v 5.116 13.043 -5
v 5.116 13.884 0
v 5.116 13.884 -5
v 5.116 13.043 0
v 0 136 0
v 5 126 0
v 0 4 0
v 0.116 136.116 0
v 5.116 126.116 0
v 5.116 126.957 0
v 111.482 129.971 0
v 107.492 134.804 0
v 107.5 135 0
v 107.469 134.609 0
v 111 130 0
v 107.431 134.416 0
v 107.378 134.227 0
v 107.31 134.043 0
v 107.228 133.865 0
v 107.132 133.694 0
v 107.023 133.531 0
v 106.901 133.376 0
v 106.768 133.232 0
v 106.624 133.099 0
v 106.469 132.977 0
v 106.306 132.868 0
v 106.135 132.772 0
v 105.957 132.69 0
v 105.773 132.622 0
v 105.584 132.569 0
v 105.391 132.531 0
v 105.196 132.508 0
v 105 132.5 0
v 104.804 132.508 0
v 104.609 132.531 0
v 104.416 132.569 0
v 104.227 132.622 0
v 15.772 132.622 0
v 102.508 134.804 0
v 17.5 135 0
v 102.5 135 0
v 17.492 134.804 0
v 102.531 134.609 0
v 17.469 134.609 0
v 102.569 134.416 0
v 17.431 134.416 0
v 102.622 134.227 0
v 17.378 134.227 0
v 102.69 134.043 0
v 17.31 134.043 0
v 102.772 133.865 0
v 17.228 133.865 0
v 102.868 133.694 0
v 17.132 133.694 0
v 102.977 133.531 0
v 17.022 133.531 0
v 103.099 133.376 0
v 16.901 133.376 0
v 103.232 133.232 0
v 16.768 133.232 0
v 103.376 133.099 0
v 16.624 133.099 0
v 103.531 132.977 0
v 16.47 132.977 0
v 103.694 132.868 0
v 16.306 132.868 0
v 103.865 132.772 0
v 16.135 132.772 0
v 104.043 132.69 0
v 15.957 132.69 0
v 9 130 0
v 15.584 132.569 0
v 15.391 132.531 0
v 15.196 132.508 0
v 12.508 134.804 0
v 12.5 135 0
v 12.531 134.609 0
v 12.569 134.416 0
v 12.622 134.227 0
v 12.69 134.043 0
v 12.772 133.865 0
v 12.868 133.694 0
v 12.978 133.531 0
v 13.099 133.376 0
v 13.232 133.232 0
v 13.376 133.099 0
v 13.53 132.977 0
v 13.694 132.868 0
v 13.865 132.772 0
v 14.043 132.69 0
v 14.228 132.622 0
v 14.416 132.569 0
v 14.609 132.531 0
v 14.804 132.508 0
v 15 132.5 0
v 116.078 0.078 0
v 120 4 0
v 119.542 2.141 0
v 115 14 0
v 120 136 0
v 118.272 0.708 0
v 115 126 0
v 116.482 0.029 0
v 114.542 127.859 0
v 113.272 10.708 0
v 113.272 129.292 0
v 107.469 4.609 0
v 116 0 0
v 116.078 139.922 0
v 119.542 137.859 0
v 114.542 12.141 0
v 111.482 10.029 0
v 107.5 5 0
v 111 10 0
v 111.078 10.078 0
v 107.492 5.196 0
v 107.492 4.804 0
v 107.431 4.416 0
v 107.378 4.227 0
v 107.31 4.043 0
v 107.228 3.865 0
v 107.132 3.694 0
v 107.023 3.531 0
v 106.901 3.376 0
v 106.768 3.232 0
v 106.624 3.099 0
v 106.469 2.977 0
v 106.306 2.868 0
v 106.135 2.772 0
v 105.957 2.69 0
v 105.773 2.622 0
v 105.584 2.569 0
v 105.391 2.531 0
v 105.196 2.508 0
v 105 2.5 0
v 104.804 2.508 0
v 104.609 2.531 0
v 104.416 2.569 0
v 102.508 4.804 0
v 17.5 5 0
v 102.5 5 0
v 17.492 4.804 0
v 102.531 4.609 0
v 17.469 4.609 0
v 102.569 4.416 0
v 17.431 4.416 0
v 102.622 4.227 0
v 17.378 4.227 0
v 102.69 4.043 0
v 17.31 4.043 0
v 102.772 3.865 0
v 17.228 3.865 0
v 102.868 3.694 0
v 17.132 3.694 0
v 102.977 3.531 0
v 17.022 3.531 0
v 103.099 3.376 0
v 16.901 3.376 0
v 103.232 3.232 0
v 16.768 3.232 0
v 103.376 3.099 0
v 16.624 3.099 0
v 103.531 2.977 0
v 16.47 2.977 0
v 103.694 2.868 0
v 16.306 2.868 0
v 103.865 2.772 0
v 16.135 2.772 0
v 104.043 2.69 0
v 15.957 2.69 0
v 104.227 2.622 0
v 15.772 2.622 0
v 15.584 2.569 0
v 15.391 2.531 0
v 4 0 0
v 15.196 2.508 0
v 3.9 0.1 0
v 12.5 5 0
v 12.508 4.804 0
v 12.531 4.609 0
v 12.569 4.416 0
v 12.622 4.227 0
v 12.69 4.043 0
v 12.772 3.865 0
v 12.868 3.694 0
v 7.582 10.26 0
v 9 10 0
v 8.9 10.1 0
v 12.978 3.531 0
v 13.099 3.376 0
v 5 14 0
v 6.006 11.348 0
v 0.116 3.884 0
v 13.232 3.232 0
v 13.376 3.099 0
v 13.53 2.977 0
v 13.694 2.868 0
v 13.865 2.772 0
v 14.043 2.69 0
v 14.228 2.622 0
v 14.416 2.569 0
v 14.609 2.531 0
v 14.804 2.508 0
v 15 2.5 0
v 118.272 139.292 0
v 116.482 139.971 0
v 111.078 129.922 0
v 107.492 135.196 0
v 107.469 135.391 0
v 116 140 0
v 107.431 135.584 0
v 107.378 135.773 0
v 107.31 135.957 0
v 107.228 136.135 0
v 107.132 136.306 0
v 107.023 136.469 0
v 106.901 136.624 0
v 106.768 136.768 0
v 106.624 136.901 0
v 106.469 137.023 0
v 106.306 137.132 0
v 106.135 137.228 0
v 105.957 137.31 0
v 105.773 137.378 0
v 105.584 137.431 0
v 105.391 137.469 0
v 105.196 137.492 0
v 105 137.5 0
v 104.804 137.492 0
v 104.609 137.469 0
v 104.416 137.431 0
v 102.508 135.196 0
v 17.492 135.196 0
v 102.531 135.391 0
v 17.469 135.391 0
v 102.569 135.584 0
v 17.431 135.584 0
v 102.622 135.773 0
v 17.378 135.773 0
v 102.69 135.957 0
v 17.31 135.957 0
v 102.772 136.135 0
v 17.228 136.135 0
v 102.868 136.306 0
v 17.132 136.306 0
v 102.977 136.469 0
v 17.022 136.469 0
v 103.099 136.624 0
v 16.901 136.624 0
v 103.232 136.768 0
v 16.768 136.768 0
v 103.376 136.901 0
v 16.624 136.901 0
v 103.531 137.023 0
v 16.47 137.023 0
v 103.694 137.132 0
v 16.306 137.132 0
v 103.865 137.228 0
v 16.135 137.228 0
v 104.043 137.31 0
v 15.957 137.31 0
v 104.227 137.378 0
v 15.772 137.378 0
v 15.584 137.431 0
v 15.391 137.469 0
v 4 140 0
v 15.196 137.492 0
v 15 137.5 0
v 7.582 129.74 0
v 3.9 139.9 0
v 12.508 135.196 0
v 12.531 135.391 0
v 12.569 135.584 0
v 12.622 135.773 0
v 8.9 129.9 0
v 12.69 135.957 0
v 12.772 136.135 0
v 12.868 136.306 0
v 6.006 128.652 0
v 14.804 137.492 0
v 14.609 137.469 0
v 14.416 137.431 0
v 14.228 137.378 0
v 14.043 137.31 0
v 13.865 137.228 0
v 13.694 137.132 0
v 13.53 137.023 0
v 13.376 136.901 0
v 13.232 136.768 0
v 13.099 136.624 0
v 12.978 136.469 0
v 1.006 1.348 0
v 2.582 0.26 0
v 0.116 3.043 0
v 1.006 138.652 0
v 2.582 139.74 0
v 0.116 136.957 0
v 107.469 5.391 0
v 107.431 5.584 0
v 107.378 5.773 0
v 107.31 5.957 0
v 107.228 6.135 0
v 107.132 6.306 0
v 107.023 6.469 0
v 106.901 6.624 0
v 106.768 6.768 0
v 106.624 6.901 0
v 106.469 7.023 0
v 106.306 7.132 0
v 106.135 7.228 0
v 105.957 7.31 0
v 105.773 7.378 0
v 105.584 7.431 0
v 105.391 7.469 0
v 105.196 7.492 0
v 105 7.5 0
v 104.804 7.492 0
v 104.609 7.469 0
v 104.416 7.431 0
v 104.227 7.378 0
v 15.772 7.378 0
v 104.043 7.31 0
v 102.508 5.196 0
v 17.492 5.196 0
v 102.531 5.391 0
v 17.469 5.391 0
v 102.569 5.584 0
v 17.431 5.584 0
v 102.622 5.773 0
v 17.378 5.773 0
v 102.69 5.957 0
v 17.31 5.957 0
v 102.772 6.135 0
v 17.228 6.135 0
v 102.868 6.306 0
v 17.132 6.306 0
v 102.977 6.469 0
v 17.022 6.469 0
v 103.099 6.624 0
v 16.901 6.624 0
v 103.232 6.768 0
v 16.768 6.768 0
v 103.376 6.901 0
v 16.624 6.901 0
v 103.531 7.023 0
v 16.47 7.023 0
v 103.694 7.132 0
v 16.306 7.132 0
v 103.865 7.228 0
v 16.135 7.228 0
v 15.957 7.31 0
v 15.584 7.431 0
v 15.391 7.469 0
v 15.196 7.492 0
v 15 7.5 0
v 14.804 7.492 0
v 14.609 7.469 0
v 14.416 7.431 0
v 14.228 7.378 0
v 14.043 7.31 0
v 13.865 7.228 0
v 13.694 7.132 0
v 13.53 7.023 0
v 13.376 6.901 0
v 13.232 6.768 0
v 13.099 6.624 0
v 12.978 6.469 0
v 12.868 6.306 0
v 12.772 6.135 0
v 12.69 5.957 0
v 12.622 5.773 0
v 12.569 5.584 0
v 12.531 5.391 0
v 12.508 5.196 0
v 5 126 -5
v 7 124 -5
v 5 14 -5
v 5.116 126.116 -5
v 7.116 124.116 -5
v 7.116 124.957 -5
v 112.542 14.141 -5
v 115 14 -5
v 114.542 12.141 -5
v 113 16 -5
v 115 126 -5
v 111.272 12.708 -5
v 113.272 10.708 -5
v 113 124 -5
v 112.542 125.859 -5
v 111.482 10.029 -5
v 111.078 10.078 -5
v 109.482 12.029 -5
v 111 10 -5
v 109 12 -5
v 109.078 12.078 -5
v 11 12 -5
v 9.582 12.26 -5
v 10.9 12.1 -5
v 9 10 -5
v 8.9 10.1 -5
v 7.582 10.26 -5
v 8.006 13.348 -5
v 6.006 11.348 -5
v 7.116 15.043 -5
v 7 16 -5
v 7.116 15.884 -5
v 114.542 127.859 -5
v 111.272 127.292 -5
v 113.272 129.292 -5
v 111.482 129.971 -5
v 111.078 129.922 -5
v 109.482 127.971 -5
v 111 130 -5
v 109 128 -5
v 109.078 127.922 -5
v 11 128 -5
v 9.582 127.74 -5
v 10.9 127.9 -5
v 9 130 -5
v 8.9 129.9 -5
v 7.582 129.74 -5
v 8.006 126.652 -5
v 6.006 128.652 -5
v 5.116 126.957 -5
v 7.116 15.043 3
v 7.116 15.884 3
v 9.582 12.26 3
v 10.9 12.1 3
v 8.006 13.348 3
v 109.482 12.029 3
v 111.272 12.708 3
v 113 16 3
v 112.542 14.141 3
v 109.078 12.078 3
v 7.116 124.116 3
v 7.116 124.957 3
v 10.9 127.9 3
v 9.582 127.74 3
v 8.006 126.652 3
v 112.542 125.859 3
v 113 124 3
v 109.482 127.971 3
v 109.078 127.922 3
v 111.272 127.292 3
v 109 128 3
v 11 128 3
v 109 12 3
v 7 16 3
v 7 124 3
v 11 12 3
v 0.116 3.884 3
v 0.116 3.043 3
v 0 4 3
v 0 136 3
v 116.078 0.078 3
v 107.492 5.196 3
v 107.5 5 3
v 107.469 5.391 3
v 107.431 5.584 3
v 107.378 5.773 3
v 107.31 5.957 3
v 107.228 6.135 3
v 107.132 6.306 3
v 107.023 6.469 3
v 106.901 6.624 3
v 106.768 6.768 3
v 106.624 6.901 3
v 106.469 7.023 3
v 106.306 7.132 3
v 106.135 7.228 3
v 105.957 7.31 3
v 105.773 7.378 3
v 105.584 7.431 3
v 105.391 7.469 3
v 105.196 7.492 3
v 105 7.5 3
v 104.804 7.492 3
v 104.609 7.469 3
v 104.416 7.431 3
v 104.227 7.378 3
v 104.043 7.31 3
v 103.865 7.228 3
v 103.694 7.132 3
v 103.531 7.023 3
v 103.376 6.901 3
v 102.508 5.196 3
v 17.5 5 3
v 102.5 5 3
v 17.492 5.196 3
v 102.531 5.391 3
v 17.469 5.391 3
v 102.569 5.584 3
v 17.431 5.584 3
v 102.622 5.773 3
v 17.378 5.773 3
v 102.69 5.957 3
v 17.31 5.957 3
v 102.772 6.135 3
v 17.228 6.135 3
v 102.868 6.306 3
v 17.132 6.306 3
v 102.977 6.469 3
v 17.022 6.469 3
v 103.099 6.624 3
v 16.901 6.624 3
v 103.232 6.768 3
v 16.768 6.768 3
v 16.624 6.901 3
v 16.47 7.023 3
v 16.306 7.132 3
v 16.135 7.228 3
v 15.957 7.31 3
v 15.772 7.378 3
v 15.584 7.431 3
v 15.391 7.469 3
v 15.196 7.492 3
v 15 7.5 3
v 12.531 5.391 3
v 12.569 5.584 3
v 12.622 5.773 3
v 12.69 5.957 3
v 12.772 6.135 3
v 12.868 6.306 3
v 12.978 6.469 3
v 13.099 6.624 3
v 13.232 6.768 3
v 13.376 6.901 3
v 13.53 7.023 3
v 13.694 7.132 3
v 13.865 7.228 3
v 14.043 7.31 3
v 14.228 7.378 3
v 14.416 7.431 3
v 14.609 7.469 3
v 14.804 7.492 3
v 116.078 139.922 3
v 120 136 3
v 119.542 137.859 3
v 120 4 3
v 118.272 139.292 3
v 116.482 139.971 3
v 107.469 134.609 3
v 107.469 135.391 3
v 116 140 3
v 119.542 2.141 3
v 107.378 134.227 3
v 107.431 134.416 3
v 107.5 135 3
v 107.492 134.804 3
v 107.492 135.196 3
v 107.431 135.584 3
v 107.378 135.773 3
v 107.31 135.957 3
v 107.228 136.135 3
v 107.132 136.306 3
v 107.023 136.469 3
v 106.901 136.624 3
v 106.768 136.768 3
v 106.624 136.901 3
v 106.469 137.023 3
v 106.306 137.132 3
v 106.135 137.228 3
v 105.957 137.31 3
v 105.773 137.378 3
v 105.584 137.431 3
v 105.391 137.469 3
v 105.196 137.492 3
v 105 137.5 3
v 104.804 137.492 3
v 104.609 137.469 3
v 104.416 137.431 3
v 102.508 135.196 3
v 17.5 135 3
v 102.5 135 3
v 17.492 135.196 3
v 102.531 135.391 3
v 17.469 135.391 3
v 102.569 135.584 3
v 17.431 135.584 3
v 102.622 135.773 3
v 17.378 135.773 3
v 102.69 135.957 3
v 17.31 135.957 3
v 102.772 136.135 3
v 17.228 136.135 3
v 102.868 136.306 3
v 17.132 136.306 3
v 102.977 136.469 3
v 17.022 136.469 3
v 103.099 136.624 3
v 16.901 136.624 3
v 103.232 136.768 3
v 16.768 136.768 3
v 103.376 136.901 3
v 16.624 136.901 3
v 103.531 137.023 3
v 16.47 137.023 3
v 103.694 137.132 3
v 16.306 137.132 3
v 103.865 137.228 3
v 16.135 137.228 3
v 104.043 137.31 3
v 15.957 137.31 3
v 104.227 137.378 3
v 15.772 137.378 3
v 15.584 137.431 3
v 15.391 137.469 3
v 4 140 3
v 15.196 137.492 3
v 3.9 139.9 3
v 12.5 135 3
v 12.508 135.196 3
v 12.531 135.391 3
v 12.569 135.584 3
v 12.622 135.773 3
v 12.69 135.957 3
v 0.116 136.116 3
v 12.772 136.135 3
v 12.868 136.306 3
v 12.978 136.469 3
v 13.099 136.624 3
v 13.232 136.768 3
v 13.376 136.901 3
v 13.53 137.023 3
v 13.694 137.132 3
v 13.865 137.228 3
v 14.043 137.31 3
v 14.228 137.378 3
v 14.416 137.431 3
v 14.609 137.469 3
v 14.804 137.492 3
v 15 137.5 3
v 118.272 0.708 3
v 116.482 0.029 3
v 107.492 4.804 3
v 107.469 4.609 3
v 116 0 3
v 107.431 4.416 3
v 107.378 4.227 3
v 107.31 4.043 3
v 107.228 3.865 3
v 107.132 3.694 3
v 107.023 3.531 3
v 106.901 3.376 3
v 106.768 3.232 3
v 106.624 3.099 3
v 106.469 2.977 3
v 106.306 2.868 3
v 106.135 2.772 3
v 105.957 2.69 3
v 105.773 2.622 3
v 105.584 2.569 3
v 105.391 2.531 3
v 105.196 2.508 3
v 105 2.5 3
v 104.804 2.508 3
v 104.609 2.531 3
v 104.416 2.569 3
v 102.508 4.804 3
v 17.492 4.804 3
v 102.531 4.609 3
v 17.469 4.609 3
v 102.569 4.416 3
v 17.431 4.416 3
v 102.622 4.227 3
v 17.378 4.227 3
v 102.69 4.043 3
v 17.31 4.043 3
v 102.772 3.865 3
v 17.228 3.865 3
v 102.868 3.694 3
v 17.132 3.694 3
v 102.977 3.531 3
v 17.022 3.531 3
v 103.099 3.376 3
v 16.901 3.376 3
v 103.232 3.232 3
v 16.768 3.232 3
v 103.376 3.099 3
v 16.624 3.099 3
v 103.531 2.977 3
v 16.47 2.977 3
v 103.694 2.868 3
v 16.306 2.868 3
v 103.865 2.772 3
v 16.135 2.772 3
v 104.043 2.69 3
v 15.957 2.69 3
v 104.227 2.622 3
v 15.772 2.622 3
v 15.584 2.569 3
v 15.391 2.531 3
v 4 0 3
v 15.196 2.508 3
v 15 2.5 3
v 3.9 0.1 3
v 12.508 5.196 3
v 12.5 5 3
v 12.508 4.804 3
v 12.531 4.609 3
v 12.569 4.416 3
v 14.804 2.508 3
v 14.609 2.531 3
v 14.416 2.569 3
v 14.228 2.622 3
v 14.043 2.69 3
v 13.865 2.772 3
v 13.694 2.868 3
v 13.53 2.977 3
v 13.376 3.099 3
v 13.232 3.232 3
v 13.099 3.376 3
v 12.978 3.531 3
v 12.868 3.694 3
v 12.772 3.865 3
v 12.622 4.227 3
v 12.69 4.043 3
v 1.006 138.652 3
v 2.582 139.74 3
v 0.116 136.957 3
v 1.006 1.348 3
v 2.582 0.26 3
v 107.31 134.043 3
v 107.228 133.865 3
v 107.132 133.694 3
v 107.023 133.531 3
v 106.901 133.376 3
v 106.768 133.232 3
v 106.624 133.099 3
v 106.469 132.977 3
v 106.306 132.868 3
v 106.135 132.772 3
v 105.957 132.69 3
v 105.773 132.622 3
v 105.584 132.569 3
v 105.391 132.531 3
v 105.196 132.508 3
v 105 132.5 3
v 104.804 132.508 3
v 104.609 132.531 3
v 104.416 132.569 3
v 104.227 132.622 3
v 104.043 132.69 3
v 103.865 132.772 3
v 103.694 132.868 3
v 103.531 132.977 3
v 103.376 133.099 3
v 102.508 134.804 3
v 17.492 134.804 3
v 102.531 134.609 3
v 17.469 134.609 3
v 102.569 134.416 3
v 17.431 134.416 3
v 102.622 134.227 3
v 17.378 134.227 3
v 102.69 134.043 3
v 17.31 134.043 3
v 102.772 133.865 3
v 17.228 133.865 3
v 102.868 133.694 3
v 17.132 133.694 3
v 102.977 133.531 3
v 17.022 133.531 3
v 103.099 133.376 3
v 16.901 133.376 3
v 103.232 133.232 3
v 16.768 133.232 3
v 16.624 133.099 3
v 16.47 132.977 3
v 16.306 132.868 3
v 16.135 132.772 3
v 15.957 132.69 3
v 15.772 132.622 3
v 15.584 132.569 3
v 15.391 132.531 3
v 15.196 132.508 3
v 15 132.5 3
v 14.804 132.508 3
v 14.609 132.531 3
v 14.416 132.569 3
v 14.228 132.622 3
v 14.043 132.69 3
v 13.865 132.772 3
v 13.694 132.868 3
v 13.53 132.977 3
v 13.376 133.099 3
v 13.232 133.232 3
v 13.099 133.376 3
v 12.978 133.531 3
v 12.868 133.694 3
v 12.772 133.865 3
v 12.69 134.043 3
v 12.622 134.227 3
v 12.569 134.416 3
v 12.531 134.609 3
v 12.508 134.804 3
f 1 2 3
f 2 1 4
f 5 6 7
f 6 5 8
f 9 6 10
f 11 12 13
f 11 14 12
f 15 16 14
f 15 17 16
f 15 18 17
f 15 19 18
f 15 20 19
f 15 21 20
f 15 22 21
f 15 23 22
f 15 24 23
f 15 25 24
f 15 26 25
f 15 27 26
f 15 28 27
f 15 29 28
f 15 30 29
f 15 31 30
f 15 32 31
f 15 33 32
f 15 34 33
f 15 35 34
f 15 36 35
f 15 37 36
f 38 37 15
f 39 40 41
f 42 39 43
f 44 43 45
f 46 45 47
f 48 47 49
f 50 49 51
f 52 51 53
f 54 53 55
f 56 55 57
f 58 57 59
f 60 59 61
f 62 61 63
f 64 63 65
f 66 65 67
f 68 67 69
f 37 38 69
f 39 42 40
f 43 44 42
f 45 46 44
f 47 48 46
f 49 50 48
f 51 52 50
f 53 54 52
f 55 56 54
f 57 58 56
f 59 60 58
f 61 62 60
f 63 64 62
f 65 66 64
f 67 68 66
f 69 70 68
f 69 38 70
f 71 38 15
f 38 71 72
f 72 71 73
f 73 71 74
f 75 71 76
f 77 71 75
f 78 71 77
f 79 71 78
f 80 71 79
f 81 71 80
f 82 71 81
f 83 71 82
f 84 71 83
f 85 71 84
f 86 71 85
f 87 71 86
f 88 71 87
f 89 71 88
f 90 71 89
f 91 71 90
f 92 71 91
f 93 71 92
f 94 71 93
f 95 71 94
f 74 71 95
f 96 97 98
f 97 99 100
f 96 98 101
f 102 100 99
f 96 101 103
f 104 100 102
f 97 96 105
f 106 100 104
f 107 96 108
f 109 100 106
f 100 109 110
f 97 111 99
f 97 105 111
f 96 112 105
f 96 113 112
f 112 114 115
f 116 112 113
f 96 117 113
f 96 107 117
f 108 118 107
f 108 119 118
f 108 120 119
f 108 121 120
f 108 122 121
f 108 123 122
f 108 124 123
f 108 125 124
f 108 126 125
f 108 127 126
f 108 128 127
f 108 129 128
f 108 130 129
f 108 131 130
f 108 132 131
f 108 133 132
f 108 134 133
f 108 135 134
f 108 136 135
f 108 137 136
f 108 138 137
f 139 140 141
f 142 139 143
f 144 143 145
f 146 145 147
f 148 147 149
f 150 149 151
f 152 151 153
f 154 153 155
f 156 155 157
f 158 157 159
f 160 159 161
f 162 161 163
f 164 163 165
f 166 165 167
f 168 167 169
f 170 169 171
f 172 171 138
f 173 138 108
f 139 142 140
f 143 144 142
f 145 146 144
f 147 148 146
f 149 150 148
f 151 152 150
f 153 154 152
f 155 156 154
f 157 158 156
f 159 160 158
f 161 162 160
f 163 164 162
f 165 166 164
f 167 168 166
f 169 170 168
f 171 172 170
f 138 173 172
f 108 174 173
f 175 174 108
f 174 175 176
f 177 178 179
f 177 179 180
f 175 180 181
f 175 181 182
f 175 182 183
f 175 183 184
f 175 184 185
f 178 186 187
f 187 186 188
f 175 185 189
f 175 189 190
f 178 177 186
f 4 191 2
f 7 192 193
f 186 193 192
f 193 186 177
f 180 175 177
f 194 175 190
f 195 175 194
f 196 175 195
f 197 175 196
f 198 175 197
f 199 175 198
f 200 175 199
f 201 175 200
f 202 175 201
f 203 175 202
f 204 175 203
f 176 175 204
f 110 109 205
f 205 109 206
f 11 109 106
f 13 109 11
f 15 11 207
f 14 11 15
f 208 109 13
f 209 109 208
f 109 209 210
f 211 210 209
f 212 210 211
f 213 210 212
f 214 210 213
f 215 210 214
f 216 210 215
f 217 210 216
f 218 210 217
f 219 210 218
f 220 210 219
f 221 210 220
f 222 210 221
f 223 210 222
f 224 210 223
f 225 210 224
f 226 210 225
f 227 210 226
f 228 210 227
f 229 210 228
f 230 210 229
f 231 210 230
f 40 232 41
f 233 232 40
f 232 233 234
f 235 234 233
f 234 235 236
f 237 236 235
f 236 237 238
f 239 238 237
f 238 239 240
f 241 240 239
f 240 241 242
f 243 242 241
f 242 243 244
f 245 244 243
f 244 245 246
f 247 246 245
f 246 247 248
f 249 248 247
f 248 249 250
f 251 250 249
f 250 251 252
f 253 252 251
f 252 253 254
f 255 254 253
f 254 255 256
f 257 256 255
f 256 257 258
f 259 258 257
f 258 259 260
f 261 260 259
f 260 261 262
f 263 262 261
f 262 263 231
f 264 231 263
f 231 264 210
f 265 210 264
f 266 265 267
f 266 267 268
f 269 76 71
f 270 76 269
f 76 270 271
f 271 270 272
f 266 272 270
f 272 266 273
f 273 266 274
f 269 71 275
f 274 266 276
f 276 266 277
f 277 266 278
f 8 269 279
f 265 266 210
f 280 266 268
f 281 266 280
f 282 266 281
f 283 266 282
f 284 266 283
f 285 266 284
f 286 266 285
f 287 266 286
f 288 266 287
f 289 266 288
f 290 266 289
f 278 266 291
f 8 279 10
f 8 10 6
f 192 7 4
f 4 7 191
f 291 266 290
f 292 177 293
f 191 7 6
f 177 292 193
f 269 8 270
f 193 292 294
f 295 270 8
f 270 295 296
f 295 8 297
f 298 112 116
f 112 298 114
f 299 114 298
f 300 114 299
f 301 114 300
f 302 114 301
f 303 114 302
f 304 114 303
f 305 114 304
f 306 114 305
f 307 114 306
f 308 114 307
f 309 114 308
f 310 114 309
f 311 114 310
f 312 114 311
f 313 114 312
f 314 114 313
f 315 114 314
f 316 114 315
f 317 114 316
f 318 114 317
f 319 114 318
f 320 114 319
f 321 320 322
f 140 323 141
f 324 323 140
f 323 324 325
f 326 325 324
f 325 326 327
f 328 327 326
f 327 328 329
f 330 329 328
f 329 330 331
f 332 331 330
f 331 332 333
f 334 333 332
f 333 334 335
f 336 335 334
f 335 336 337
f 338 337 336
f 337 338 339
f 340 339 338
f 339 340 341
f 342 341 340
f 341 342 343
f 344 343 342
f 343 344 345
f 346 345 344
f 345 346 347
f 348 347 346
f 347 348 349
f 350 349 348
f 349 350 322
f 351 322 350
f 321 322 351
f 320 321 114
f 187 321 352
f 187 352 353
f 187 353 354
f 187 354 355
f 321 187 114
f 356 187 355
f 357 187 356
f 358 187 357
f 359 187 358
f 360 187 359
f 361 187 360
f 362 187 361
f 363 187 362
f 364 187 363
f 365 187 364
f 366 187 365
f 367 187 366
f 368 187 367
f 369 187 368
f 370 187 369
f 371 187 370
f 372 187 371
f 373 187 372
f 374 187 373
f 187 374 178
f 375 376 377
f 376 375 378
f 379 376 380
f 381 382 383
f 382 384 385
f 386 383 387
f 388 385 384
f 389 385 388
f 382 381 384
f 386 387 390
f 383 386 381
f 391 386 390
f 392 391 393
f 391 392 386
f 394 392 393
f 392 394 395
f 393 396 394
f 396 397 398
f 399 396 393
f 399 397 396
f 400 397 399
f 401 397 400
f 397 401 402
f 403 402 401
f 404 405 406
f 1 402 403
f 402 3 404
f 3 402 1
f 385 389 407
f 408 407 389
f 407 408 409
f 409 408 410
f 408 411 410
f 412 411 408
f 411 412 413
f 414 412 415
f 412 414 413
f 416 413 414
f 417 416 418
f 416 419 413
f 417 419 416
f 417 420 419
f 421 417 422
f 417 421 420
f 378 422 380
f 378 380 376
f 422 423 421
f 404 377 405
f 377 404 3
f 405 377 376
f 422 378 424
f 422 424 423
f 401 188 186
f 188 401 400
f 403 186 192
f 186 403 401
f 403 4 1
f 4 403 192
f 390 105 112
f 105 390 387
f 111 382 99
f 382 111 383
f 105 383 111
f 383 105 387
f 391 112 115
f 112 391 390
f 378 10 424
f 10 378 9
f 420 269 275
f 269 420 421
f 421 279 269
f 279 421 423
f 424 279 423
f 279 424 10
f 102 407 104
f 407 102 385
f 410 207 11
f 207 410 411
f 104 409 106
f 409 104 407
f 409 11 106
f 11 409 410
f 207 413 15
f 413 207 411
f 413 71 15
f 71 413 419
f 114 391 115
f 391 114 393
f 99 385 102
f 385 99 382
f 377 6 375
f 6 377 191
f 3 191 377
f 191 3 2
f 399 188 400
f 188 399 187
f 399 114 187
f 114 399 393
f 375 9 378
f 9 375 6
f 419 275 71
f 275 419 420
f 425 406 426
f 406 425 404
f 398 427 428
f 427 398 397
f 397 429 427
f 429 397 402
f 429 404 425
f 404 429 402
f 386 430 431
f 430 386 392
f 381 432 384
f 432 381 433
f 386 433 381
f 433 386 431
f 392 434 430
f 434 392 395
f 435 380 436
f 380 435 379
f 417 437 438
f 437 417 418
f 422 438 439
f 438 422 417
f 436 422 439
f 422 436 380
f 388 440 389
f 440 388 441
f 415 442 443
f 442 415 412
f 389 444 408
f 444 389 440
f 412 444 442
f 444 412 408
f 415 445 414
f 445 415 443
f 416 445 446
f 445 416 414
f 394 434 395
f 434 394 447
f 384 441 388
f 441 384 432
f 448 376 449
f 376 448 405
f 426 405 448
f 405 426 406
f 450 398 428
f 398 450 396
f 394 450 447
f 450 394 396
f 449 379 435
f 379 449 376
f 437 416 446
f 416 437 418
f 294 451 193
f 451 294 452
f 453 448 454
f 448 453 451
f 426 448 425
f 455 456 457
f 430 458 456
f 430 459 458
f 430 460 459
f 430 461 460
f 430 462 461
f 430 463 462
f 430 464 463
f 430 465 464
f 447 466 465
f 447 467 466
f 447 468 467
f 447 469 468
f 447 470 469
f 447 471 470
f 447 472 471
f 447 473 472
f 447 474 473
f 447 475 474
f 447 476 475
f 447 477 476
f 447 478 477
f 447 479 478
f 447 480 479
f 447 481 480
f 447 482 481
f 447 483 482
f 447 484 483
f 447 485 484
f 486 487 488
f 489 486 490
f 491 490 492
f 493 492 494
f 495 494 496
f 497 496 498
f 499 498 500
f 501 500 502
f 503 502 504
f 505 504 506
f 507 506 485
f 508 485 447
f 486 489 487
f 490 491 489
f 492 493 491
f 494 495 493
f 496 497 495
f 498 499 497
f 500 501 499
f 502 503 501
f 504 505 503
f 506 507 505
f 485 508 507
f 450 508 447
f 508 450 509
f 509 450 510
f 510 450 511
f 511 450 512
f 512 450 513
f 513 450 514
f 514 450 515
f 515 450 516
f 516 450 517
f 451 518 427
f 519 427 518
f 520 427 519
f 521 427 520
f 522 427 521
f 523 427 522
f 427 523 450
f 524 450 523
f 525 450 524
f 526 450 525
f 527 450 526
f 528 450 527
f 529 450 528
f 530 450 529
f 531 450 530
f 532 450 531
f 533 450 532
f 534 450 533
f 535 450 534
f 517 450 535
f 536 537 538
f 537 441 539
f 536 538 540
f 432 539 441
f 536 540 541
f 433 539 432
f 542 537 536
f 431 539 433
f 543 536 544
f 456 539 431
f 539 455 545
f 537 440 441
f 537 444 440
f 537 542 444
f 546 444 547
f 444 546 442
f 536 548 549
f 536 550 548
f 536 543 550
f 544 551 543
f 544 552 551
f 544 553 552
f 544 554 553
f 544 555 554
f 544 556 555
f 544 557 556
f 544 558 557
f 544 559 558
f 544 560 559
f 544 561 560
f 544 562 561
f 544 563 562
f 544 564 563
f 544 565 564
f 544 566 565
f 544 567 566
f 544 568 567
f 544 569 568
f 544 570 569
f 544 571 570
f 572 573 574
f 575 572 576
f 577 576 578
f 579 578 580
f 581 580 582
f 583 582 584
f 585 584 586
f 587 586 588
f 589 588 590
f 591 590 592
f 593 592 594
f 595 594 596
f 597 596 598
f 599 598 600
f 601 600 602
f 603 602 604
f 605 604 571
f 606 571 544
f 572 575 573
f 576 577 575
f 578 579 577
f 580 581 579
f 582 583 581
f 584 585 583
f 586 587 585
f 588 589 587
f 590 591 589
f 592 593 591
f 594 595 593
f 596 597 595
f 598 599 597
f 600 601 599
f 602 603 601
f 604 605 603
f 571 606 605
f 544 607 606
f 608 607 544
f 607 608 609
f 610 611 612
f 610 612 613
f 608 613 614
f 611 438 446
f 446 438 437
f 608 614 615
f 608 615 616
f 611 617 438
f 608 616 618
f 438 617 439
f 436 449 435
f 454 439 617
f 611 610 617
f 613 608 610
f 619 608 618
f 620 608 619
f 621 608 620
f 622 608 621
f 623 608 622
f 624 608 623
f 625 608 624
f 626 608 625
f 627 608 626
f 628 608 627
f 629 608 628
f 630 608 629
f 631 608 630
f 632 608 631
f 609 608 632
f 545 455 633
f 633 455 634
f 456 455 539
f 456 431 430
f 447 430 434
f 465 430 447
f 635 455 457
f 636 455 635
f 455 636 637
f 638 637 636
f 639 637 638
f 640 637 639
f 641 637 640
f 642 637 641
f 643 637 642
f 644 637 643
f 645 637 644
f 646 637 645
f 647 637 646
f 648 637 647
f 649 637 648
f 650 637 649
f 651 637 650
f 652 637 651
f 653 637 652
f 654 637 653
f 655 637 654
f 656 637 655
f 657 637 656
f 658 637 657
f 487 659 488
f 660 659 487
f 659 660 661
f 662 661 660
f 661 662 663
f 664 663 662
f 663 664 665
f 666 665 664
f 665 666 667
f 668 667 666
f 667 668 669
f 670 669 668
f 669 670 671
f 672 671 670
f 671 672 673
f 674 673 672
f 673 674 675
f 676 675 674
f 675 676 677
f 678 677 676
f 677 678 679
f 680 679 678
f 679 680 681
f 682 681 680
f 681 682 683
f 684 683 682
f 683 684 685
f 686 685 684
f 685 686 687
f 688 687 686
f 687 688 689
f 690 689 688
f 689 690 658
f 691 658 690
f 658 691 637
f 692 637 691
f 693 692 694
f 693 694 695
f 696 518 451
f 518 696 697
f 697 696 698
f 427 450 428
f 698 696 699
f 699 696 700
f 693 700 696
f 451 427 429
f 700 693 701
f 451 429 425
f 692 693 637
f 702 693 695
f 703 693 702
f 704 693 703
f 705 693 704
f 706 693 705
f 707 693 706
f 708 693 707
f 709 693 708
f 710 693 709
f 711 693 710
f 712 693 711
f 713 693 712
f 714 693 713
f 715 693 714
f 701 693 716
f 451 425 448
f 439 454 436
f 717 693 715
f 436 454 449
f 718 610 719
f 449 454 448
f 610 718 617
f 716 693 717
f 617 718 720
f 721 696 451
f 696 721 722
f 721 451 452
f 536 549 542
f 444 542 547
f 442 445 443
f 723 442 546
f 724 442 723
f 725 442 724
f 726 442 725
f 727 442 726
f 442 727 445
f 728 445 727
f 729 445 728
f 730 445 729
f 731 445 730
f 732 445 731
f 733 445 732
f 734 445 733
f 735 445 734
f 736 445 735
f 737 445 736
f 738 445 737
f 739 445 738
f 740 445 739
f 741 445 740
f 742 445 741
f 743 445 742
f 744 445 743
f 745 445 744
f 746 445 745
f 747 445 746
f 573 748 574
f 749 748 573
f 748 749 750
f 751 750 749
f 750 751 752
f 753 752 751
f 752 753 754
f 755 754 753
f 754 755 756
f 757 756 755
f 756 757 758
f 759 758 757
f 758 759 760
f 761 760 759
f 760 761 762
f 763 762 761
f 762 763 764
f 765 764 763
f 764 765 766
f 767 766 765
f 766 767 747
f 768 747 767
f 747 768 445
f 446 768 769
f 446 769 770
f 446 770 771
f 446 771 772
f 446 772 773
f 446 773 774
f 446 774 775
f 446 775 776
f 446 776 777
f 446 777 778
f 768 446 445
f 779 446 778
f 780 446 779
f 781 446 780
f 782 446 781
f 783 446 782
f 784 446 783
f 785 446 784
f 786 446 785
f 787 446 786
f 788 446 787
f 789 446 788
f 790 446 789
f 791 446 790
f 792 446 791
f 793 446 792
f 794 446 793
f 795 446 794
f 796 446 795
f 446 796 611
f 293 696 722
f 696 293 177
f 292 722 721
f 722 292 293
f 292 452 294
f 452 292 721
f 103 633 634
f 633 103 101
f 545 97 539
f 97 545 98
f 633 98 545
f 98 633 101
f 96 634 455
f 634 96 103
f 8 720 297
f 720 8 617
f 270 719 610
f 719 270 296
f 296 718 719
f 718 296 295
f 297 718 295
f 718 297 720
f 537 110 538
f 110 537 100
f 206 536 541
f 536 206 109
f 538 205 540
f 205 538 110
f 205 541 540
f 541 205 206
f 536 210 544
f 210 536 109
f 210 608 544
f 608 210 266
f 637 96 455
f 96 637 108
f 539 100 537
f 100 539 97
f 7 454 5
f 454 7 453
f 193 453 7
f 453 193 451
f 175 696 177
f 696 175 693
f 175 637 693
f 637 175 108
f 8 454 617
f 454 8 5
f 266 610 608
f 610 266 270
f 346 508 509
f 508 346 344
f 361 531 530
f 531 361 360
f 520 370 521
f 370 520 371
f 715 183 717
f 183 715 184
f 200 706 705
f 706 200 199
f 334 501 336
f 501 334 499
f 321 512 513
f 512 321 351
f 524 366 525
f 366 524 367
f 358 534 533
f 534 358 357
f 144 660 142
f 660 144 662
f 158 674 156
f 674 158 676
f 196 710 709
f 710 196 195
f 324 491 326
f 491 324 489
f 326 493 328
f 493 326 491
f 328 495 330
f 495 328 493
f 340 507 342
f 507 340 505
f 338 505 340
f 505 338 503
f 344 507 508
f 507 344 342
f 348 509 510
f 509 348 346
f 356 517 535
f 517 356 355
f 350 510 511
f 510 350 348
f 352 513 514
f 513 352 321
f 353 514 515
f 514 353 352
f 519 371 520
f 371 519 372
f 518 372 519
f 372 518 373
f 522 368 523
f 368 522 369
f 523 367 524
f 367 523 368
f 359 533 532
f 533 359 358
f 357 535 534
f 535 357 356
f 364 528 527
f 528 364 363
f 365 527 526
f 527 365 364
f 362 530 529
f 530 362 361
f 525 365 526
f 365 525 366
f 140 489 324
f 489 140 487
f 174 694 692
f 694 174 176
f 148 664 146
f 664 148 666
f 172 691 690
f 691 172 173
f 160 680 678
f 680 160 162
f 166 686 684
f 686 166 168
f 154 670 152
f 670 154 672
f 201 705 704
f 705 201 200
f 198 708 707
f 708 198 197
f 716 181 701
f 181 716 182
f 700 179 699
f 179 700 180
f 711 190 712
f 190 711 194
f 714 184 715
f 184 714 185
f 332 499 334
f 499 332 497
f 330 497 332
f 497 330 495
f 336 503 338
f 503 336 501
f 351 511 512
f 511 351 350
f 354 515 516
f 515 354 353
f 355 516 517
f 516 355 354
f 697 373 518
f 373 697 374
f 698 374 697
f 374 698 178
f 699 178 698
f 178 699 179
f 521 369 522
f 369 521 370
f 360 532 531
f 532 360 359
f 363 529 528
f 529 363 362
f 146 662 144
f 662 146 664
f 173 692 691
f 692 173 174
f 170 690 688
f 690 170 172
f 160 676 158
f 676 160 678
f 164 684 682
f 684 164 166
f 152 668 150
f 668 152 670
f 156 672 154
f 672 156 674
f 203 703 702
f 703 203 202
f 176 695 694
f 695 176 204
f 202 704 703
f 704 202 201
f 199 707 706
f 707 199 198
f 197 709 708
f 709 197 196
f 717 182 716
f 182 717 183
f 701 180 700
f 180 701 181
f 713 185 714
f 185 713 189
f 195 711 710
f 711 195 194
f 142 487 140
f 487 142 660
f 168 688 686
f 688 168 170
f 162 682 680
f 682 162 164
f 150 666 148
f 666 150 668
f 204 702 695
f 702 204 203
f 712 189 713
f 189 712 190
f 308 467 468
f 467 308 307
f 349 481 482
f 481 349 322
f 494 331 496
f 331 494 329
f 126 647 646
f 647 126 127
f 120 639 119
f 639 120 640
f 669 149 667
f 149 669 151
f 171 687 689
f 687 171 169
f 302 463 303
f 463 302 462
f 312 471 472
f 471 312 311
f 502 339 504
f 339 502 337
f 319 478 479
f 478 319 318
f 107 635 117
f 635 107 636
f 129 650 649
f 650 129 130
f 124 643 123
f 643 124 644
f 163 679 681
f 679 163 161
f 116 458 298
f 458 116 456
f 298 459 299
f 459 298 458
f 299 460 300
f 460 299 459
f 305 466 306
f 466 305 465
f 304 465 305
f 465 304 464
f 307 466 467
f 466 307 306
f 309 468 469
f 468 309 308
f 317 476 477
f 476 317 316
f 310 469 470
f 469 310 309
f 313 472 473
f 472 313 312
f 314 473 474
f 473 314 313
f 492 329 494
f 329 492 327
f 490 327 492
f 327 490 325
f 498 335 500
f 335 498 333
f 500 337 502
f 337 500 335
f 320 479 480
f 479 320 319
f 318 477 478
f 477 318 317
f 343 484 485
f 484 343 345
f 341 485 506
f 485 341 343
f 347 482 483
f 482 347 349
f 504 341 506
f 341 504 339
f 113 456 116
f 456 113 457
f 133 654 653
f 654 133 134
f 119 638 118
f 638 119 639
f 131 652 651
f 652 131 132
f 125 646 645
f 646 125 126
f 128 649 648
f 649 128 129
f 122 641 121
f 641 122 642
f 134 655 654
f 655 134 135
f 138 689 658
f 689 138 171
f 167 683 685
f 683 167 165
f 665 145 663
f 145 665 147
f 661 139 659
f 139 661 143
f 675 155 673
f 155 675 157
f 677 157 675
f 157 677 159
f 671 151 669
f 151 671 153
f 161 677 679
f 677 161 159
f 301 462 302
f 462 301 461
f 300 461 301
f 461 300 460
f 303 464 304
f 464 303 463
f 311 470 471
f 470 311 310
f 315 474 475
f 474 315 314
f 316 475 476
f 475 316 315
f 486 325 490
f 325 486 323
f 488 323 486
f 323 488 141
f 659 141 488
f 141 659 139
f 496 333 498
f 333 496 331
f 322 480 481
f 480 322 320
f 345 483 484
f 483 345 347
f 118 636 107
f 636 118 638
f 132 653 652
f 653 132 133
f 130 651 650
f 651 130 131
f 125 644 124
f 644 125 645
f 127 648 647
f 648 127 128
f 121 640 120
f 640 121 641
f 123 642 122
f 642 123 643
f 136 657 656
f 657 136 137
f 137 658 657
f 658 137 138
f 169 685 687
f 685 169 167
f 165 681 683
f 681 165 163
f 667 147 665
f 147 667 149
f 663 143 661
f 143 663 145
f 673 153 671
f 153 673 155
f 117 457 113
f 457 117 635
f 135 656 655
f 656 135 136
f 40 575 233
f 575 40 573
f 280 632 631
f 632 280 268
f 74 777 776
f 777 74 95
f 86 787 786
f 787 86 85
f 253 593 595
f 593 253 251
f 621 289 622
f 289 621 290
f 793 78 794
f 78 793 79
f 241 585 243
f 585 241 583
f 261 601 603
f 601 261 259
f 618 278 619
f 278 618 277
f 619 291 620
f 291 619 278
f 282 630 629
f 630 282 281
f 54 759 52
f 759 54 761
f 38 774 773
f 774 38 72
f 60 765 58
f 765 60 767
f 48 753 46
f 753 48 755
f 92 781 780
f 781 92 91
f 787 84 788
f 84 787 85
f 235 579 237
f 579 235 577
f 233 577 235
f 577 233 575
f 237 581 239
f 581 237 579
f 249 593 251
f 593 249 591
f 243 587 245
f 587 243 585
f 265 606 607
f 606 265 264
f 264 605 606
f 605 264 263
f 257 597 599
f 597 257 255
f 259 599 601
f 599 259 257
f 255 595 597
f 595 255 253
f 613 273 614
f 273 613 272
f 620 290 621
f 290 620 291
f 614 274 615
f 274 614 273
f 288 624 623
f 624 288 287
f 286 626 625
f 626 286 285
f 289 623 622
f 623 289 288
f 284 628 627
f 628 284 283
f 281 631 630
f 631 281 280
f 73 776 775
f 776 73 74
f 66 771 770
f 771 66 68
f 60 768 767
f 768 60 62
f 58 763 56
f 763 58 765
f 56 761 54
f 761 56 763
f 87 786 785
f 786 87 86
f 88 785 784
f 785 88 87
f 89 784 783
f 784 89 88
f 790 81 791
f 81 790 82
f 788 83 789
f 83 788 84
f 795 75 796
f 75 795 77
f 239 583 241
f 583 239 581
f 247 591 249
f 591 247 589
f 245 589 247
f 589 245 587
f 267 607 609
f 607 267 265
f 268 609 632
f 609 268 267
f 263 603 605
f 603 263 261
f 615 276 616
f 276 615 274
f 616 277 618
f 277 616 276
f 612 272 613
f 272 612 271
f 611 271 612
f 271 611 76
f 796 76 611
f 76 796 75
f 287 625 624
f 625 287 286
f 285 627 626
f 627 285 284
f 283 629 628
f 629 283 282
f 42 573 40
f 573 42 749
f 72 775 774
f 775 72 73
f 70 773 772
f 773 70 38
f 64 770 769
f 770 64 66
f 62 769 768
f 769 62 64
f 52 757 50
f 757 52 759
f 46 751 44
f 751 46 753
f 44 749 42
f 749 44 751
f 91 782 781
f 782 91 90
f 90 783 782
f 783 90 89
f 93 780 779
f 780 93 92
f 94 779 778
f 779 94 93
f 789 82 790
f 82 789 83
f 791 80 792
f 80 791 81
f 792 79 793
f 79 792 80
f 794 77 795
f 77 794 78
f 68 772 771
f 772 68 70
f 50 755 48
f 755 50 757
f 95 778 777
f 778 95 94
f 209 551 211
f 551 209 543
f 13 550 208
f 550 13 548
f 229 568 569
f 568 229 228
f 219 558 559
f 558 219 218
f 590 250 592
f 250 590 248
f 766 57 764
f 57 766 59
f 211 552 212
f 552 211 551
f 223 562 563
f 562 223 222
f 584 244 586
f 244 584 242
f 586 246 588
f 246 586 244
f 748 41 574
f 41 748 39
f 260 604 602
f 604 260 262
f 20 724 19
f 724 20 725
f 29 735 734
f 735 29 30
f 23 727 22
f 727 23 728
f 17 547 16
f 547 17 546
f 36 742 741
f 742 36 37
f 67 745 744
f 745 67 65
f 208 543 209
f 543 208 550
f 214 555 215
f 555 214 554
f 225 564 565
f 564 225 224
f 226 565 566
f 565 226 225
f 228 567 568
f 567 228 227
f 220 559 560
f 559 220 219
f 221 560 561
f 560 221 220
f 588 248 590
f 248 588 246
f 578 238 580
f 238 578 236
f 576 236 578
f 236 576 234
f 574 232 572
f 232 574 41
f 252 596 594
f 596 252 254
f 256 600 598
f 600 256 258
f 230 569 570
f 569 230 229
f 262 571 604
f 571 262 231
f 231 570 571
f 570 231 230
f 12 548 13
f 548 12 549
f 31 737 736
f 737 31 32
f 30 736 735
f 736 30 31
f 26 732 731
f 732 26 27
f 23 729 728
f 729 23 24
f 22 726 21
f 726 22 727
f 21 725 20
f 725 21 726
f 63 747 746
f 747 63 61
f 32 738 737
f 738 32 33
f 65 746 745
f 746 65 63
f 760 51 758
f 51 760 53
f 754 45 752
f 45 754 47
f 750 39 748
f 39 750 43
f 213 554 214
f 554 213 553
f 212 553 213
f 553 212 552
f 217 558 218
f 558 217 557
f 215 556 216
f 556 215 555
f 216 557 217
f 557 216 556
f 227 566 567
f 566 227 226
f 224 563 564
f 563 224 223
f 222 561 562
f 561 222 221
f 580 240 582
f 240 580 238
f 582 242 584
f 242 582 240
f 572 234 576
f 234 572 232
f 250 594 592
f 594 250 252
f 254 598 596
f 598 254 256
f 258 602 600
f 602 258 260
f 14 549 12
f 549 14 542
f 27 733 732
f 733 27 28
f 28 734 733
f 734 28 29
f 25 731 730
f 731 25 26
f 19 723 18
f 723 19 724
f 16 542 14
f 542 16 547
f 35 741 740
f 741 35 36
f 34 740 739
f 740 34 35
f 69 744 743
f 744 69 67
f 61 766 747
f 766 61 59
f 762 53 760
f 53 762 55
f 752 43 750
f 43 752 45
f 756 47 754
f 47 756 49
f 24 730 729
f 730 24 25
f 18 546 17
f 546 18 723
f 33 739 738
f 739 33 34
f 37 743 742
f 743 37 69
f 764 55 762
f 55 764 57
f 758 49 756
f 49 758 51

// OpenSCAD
module noCornersCube(width, height, depth, cornerRadius) {
    
    //cube([width, height, depth]);
    union() {
        linear_extrude(height=depth) {
            // Square with corners cut.
            polygon([
            [cornerRadius,0],
            [width-cornerRadius, 0],
            [width, cornerRadius],
            [width, height-cornerRadius],
            [width-cornerRadius, height],
            [cornerRadius, height],
            [0, height-cornerRadius],
            [0, cornerRadius],
            [cornerRadius,0]
            ]);
        }
        
    }
}

module roundedCube(width, height, depth, cornerRadius) {
    
    //cube([width, height, depth]);
    union() {
        translate([cornerRadius,cornerRadius,0]) {
            cylinder(r=cornerRadius, h=depth);   
        }
        translate([width-cornerRadius,cornerRadius,0]) {
            cylinder(r=cornerRadius, h=depth);
        }
        translate([cornerRadius,height-cornerRadius,0]) {
            cylinder(r=cornerRadius, h=depth);
        }
        translate([width-cornerRadius,height-cornerRadius,0]) {
            cylinder(r=cornerRadius, h=depth);
        }
        
        noCornersCube(width, height, depth, cornerRadius);
    }
}

module mountinghole(xOffset, yOffset) {
    // Mounting holes...
    // First hole, 10mm from left edge
    translate([5 + xOffset, 10 + yOffset, -0.01]) {
        cylinder(d=5, h=5, $fn=80);
    }
}

module mountingHoles() {
    // Holes 90mm appart on X (110mm x hole, 10mm in each side).
    // Holes -5 and +5 from Y edges. Y is 120 long
    mountinghole(10, -5);
    mountinghole(100, -5);
    mountinghole(10, 120+5);
    mountinghole(100, 120+5);
}

// Inset piece.
translate([5,10,-5]) {
    difference() {
        union() {
            roundedCube(110, 120, 5, 4);
        }
        union() {
            translate([2,2,-0.01]) {
                #roundedCube(110-4, 120-4, 5.1, 4);
            }
        }
    }
}

// Face peice
// face is 5mm from edge in x (+/-5mm side to side
// 10mm in the y (+/-10mm back to front).
difference() {
    union() {
        roundedCube(120, 140,3, 4);
    }
    union() {
        translate([7,12,-0.01]) {
            #roundedCube(120-(4+10), 130-(4+10), 3.1, 4);
        }
        mountingHoles();
    }
}
